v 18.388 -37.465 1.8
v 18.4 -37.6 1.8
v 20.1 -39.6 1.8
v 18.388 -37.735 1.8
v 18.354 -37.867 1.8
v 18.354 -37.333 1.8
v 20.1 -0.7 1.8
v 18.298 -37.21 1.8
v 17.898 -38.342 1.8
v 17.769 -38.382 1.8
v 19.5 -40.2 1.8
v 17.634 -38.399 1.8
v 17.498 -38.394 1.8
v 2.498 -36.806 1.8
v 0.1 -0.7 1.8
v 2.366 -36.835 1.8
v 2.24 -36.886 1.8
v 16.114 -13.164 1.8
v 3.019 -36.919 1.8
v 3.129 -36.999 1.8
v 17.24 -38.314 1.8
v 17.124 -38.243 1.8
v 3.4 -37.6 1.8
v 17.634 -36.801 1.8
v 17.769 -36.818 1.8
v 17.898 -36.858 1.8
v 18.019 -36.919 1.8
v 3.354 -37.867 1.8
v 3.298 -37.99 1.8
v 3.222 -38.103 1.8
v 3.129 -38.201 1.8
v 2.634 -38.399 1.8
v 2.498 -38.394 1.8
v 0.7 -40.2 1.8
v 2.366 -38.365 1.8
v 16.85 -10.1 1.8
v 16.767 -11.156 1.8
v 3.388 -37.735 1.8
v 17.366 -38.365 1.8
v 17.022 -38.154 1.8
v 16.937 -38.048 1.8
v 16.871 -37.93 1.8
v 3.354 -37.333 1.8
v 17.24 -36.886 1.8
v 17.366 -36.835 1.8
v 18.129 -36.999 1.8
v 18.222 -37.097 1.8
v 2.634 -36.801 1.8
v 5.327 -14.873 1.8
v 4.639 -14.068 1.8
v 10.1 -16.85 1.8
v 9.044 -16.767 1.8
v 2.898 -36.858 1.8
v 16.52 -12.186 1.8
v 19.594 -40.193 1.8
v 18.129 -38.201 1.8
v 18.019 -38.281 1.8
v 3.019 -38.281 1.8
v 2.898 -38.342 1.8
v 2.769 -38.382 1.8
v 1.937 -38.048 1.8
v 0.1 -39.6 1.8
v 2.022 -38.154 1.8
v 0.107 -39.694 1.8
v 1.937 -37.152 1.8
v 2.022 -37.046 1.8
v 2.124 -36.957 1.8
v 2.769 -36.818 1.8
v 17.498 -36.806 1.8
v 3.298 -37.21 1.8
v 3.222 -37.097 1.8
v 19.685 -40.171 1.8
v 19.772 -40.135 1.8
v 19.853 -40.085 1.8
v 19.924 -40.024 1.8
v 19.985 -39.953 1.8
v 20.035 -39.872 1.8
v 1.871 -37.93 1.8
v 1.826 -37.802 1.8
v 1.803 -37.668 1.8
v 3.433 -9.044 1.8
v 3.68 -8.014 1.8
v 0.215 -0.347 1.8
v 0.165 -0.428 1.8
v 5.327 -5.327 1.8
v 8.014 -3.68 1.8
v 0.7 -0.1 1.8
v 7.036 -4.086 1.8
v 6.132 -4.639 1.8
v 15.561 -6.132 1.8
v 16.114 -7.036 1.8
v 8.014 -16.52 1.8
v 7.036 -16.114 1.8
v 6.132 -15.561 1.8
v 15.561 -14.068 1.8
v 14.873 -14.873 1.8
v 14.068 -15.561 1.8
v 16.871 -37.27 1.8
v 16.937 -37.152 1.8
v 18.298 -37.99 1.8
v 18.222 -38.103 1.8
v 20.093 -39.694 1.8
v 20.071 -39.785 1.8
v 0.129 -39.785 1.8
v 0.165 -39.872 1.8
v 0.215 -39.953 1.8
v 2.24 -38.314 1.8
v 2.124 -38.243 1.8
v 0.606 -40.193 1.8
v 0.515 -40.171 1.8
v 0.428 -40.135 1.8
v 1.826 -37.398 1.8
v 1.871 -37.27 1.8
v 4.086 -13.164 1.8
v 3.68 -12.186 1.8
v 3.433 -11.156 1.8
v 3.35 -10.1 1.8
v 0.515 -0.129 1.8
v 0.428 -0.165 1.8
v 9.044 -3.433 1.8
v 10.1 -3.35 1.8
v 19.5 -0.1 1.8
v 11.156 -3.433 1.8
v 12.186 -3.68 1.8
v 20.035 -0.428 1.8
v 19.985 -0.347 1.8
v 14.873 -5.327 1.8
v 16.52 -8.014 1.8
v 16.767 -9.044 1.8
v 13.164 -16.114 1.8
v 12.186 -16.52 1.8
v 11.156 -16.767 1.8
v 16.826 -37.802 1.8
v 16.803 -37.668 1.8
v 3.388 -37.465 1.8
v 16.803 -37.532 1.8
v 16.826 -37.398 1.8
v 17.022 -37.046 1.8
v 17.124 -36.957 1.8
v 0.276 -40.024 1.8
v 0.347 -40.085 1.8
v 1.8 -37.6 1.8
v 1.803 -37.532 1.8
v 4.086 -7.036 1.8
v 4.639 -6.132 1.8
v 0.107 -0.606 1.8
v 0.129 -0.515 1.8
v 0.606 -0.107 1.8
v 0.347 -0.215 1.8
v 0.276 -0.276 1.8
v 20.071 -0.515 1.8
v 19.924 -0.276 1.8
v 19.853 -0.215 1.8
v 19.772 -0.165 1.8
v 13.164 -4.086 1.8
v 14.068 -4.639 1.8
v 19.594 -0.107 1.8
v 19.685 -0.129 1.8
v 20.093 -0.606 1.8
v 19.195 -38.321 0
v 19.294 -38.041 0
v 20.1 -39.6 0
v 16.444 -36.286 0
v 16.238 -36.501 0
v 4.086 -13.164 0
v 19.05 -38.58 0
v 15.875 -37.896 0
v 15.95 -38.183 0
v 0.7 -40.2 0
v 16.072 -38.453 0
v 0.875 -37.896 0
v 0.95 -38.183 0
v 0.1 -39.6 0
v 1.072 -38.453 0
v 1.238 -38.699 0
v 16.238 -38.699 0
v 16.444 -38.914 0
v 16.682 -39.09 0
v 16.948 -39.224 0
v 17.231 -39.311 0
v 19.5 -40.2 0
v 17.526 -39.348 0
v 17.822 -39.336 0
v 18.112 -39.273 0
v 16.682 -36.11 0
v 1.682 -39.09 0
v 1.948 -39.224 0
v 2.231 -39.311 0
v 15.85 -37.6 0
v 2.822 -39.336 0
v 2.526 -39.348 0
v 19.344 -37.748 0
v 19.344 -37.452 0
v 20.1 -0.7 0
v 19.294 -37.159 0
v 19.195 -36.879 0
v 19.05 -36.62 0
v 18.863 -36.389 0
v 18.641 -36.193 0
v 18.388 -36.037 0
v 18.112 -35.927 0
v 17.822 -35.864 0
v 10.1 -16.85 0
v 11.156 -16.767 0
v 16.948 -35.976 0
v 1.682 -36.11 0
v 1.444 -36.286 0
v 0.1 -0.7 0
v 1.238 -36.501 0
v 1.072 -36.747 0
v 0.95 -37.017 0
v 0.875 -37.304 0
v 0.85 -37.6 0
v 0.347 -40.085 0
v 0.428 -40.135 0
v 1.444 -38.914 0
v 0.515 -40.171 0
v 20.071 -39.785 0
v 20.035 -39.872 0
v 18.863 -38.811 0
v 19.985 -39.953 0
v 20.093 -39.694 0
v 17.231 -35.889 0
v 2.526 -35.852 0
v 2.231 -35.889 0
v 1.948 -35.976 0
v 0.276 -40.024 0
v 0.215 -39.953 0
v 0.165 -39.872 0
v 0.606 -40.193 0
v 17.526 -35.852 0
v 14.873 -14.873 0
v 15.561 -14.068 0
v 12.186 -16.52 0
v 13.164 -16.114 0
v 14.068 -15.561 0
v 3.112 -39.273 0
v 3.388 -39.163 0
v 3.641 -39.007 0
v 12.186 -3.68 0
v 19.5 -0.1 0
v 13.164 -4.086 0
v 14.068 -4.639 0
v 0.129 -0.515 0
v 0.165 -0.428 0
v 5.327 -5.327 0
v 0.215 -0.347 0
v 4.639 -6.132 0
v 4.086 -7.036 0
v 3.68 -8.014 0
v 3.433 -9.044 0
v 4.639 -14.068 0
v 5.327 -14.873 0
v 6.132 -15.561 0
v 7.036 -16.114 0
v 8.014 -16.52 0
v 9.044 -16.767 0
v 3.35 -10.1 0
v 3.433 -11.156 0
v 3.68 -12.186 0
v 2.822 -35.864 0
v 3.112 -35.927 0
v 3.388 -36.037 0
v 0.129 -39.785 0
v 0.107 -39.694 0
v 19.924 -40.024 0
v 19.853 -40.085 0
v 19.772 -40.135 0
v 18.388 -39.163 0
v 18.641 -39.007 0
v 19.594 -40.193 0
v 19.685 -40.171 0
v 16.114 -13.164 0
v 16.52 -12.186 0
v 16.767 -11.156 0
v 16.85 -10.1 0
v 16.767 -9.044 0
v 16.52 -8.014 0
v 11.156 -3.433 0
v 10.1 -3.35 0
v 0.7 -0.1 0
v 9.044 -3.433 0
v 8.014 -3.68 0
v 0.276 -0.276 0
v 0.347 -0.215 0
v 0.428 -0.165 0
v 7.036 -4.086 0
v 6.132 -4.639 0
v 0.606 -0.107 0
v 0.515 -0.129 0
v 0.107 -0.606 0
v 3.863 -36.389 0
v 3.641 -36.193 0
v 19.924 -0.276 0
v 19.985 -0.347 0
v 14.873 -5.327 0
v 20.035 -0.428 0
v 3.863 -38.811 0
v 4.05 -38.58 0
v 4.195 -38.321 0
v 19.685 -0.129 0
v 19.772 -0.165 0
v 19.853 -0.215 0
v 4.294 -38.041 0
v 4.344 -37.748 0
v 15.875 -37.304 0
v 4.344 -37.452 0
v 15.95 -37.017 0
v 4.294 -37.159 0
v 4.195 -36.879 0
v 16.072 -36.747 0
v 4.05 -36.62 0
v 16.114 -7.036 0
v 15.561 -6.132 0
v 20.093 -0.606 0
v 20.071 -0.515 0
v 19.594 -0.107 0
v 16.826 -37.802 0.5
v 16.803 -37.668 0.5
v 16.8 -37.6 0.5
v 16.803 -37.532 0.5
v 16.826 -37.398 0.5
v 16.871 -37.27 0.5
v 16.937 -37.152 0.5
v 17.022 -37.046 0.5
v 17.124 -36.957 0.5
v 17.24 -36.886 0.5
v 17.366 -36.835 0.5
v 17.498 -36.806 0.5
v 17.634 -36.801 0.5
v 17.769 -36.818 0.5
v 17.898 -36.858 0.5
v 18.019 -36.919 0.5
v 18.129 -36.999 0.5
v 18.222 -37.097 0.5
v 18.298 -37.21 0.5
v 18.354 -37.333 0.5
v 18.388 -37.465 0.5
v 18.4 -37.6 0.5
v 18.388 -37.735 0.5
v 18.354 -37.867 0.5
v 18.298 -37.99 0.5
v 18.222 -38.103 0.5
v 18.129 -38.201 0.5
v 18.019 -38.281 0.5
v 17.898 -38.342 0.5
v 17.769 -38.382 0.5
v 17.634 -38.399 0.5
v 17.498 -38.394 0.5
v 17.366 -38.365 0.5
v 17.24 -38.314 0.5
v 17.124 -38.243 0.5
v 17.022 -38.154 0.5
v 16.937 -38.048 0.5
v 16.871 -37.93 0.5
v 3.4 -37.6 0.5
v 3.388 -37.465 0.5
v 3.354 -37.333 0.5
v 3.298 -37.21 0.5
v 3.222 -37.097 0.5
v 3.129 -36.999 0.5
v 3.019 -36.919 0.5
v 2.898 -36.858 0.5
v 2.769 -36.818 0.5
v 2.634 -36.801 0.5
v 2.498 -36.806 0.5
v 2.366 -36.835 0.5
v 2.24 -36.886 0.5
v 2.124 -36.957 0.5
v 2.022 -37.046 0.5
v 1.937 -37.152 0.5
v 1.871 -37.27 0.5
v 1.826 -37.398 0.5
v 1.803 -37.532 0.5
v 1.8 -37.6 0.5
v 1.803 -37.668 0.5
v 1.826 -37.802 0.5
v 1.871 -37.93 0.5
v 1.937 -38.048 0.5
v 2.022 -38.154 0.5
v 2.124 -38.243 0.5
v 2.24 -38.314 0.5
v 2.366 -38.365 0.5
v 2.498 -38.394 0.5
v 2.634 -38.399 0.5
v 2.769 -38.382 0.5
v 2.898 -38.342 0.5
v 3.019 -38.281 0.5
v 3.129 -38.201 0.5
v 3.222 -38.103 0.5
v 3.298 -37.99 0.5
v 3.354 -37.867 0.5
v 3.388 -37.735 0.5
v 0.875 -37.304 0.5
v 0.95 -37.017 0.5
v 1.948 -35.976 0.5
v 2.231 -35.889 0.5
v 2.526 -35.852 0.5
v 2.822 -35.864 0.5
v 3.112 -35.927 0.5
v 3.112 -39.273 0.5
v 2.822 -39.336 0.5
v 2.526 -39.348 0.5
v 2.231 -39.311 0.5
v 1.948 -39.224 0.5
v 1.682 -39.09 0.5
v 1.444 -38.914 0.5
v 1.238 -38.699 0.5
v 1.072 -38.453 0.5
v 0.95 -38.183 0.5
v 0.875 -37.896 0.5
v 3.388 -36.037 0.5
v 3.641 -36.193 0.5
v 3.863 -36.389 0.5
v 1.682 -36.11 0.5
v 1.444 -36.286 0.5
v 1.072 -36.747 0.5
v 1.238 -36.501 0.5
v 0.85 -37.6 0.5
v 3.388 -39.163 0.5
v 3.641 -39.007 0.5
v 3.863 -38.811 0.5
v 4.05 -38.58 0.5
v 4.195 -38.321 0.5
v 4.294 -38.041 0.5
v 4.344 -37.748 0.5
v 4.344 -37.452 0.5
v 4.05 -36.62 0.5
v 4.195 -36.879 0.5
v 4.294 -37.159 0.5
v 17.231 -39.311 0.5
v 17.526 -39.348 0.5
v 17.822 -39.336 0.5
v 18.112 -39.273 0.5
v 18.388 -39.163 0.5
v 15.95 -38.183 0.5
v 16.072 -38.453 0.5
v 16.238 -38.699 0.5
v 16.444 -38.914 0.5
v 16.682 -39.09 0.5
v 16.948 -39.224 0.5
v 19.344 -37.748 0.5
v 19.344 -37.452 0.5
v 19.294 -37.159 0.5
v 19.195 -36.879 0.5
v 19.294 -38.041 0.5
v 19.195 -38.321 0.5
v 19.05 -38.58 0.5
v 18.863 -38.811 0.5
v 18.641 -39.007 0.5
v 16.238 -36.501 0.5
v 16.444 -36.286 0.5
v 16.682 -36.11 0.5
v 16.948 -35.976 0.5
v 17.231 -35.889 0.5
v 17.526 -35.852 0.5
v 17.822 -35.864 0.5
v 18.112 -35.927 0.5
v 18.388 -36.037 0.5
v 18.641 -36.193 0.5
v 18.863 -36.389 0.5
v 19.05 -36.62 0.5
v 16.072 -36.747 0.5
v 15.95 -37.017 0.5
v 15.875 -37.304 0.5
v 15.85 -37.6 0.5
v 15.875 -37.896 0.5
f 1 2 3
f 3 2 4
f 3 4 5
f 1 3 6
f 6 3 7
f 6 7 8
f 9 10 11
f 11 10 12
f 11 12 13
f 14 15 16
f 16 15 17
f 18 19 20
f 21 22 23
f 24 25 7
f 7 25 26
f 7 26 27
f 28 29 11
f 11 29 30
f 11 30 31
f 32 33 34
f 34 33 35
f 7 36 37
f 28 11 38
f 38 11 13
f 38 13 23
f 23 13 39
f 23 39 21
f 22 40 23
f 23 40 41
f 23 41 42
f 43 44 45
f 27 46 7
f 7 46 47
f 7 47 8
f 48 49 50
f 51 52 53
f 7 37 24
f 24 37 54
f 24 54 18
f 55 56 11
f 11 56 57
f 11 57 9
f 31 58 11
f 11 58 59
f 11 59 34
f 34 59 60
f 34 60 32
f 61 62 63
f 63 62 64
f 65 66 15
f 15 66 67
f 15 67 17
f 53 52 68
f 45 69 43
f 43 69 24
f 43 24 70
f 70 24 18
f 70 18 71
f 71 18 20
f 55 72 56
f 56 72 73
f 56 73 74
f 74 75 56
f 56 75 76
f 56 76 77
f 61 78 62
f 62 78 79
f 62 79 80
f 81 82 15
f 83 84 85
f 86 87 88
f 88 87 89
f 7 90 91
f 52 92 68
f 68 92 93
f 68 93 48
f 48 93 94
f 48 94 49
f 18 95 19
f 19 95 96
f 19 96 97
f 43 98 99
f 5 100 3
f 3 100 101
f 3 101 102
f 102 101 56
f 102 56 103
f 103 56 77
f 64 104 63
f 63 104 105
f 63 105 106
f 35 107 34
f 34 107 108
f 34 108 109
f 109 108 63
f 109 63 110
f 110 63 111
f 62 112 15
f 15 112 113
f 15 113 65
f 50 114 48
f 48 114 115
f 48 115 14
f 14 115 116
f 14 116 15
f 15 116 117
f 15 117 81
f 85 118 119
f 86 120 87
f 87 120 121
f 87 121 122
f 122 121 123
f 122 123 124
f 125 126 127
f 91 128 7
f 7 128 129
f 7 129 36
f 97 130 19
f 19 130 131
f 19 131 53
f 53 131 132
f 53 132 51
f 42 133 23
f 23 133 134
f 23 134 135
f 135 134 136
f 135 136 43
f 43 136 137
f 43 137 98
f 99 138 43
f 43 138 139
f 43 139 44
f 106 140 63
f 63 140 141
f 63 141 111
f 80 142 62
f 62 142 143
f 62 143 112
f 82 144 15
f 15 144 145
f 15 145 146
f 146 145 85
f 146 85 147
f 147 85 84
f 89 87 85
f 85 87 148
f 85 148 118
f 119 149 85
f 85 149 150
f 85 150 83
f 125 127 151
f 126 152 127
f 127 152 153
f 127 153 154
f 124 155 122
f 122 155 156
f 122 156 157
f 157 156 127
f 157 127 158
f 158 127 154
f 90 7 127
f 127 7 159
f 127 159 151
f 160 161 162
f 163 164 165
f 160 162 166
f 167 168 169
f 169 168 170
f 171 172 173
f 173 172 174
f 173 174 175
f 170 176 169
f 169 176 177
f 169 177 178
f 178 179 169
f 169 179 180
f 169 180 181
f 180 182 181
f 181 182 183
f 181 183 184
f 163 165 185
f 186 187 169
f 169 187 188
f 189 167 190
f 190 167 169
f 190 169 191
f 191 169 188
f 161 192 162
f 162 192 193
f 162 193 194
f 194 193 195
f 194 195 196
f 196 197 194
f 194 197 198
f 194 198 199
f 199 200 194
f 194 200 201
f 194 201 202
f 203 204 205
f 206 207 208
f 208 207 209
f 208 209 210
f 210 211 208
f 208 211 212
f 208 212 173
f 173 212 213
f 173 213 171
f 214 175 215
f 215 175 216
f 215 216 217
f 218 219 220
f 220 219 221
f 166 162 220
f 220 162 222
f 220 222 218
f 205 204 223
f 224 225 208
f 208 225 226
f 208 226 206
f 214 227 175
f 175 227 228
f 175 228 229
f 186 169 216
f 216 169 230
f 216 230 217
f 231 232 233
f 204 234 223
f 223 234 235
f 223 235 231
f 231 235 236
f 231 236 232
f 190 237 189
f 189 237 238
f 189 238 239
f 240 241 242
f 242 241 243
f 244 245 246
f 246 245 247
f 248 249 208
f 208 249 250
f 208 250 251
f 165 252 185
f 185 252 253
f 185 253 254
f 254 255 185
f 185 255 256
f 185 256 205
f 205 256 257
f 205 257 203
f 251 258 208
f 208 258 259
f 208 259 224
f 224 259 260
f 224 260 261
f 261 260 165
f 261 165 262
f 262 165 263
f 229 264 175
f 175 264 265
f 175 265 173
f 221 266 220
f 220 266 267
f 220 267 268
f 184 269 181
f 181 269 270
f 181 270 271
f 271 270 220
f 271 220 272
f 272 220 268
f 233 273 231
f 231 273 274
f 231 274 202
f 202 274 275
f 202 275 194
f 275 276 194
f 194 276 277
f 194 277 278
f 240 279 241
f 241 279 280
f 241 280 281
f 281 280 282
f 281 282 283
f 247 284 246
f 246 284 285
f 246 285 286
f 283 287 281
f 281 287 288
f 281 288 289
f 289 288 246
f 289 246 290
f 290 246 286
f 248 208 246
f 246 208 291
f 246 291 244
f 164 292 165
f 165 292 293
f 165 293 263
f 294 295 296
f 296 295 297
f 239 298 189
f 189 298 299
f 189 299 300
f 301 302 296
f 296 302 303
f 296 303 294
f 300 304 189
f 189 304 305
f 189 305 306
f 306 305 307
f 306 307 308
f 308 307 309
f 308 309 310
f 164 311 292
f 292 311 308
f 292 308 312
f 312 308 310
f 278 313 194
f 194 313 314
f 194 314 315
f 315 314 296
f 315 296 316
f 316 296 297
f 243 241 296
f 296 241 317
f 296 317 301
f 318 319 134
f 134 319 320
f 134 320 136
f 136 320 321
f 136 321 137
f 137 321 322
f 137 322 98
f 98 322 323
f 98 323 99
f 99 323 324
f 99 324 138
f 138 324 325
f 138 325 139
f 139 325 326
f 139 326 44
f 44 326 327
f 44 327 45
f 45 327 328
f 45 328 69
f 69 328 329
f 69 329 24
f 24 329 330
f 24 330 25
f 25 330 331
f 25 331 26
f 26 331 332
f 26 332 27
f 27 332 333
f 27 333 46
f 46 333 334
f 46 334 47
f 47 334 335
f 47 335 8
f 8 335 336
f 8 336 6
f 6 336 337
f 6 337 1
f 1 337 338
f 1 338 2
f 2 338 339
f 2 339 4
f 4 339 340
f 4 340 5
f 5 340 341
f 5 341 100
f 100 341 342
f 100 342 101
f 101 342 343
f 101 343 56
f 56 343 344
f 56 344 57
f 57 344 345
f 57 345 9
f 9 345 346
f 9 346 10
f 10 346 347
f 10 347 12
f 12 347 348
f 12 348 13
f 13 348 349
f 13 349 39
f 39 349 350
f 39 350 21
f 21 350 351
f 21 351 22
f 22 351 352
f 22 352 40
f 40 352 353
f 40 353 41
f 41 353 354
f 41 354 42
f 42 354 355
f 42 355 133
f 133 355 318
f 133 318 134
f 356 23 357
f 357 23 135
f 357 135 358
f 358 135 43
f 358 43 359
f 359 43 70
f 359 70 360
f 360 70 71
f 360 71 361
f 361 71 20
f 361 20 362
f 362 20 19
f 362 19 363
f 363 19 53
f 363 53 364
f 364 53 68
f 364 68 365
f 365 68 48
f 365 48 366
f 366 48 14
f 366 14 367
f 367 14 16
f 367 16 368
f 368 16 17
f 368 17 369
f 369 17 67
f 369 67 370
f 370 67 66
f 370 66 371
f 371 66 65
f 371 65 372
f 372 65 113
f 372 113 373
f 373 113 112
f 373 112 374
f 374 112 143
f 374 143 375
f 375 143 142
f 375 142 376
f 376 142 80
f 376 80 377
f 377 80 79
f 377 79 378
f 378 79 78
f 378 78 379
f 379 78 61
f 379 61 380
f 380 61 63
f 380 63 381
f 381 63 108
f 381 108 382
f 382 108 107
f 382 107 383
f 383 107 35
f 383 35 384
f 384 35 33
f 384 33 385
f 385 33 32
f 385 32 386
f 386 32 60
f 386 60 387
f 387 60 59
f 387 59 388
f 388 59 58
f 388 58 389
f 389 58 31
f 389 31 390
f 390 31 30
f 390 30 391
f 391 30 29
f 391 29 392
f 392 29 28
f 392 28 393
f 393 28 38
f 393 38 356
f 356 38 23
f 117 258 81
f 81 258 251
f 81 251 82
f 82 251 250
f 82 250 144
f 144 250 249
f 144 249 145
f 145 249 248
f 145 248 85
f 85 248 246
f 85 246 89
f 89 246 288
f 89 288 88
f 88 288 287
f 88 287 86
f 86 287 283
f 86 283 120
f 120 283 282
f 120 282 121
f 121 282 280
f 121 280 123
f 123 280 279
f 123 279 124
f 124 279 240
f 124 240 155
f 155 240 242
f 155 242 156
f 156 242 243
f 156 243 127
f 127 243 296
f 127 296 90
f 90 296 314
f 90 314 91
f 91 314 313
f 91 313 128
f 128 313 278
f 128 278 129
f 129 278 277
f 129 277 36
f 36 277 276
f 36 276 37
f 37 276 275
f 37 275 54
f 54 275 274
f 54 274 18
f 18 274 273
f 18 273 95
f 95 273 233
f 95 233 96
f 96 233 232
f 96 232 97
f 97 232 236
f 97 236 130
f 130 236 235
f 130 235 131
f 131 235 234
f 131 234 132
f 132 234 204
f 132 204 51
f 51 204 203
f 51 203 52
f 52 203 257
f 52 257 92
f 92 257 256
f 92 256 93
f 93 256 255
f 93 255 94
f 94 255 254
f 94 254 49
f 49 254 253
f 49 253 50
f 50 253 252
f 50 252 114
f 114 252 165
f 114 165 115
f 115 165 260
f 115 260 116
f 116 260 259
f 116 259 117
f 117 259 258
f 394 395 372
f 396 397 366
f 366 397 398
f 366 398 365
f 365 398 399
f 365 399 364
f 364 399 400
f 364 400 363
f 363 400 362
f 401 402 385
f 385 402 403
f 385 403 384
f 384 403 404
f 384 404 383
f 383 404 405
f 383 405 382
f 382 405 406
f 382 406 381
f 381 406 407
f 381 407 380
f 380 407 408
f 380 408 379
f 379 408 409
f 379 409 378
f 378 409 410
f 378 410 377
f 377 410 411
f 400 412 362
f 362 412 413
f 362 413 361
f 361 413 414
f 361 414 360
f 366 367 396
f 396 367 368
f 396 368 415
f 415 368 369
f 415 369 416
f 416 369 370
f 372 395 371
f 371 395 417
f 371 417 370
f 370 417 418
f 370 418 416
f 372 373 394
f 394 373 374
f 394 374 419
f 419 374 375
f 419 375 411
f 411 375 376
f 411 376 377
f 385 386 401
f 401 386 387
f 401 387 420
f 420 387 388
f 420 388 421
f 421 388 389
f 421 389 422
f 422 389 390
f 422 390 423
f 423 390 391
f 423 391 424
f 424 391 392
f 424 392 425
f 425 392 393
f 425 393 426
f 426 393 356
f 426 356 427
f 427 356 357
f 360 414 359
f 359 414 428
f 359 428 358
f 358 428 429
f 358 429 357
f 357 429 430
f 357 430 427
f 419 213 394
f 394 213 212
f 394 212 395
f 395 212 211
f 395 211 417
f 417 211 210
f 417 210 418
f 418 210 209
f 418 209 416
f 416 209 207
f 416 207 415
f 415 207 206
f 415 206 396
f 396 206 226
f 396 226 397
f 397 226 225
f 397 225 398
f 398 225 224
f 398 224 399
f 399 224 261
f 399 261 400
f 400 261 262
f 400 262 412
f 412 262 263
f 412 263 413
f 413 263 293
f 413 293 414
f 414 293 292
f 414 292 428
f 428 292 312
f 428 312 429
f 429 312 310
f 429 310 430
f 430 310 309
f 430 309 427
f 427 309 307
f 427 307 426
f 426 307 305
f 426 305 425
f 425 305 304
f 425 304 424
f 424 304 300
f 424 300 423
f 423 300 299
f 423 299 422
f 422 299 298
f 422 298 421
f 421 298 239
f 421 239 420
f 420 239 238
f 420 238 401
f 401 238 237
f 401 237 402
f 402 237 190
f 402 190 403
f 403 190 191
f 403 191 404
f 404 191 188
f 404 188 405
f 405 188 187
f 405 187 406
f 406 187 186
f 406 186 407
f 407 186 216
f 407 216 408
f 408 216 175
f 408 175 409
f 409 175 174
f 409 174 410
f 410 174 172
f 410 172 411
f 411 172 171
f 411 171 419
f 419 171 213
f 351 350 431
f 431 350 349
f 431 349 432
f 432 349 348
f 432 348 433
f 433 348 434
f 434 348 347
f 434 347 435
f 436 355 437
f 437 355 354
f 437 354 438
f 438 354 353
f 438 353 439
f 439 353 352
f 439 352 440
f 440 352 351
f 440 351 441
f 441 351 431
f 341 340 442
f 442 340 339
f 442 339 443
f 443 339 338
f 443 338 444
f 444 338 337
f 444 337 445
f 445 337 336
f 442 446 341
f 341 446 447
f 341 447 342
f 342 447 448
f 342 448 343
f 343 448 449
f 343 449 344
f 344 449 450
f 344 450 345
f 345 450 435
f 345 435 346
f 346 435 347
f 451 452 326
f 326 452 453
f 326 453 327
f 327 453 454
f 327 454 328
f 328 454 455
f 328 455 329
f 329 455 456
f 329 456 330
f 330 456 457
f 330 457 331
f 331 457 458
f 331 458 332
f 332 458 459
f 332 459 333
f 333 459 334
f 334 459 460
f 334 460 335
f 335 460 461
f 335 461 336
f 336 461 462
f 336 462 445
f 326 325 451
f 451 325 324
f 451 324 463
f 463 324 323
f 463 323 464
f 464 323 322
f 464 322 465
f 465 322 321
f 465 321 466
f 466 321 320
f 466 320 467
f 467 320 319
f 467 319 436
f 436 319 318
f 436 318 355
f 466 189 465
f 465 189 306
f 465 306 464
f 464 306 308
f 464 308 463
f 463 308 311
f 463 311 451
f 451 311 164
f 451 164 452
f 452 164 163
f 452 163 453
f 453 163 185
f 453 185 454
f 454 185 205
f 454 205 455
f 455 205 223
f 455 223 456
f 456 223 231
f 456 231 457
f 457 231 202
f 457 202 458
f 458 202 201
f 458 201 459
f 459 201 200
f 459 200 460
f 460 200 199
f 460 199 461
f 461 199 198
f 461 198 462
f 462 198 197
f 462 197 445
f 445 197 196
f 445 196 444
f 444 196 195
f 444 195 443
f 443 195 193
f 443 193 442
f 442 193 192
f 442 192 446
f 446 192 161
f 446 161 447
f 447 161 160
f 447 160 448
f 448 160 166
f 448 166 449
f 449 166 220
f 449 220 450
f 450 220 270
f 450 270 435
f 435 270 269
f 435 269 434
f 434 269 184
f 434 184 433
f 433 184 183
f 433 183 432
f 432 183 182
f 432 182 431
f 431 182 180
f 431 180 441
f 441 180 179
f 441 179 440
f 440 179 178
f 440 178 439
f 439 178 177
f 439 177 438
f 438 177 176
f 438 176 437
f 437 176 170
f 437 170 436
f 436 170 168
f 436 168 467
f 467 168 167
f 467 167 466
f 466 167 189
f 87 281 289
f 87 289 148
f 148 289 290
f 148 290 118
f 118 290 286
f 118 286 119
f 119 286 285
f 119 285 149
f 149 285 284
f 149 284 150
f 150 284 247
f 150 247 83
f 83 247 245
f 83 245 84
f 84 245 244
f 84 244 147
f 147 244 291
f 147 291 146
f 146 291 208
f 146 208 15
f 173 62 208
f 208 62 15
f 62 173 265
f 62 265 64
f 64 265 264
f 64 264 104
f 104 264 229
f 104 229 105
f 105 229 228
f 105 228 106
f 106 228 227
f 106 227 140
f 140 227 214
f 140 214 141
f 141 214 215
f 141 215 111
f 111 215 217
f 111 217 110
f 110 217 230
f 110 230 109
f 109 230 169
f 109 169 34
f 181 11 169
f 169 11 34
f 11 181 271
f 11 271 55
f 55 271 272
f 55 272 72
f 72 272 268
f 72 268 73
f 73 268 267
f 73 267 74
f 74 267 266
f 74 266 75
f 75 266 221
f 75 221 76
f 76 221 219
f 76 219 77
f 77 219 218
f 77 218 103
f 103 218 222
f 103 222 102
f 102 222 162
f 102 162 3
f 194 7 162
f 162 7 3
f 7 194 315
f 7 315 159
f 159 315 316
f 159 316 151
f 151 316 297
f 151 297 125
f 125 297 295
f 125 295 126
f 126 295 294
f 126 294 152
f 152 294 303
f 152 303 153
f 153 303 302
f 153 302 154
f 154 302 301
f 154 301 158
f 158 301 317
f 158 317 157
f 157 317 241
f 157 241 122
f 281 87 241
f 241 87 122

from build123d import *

# Parameters (mm, degrees)
SKETCH_1_R          = 6.75
EXTRUDE_1_DEPTH     = 1.8
SKETCH_2_R          = 0.8
CUT_EXTRUDE_1_DEPTH = 2
SKETCH_3_R          = 1.75
CUT_EXTRUDE_2_DEPTH = 0.5
CUT_EXTRUDE_4_DEPTH = 10
SKETCH_6_R          = 1.75
EXTRUDE_2_DEPTH     = 1.8


with BuildPart() as part:
    # 草图1 → 凸台-拉伸1 (new body)
    with BuildSketch(Plane.XY):
        with BuildLine():
            Line((0.7, 0), (19.5, 0))
            ThreePointArc((19.5, 0), (19.994974747, -0.205025253), (20.2, -0.7))
            Line((20.2, -0.7), (20.2, -39.6))
            ThreePointArc((20.2, -39.6), (19.994974747, -40.094974747), (19.5, -40.3))
            Line((19.5, -40.3), (0.7, -40.3))
            ThreePointArc((0.7, -40.3), (0.205025253, -40.094974747), (0, -39.6))
            Line((0, -39.6), (0, -0.7))
            ThreePointArc((0, -0.7), (0.205025253, -0.205025253), (0.7, 0))
        make_face()
        with Locations((10.1, -10.1)):
            Circle(SKETCH_1_R, mode=Mode.SUBTRACT)
    extrude(amount=EXTRUDE_1_DEPTH)

    # 草图2 → 切除-拉伸1 (cut)
    with BuildSketch(Plane.XY.offset(1.8)):
        with Locations((17.6, -2.6)):
            Circle(SKETCH_2_R)
        with Locations((17.6, -37.6)):
            Circle(SKETCH_2_R)
        with Locations((2.6, -37.6)):
            Circle(SKETCH_2_R)
        with Locations((2.6, -2.6)):
            Circle(SKETCH_2_R)
    extrude(amount=-CUT_EXTRUDE_1_DEPTH, mode=Mode.SUBTRACT)

    # 草图3 → 切除-拉伸2 (cut)
    with BuildSketch(Plane(origin=(0, 0, 0), x_dir=(-1, 0, 0), z_dir=(0, 0, -1))):
        with Locations((-17.6, -2.6)):
            Circle(SKETCH_3_R)
        with Locations((-2.6, -2.6)):
            Circle(SKETCH_3_R)
        with Locations((-17.6, -37.6)):
            Circle(SKETCH_3_R)
        with Locations((-2.6, -37.6)):
            Circle(SKETCH_3_R)
    extrude(amount=-CUT_EXTRUDE_2_DEPTH, mode=Mode.SUBTRACT)

    # 草图4 → 切除-拉伸4 (cut)
    with BuildSketch(Plane(origin=(0, 0, 0), x_dir=(-1, 0, 0), z_dir=(0, 0, -1))):
        with BuildLine():
            Line((-19.5, -40.3), (-0.7, -40.3))
            ThreePointArc((-0.7, -40.3), (-0.205025253, -40.094974747), (0, -39.6))
            Line((0, -39.6), (0, -0.7))
            ThreePointArc((0, -0.7), (-0.205025253, -0.205025253), (-0.7, 0))
            Line((-0.7, 0), (-19.5, 0))
            ThreePointArc((-19.5, 0), (-19.994974747, -0.205025253), (-20.2, -0.7))
            Line((-20.2, -0.7), (-20.2, -39.6))
            ThreePointArc((-20.2, -39.6), (-19.994974747, -40.094974747), (-19.5, -40.3))
        make_face()
        with BuildLine():
            Line((-0.7, -0.1), (-19.5, -0.1))
            ThreePointArc((-19.5, -0.1), (-19.924264069, -0.275735931), (-20.1, -0.7))
            Line((-20.1, -0.7), (-20.1, -39.6))
            ThreePointArc((-20.1, -39.6), (-19.924264069, -40.024264069), (-19.5, -40.2))
            Line((-19.5, -40.2), (-0.7, -40.2))
            ThreePointArc((-0.7, -40.2), (-0.275735931, -40.024264069), (-0.1, -39.6))
            Line((-0.1, -39.6), (-0.1, -0.7))
            ThreePointArc((-0.1, -0.7), (-0.275735931, -0.275735931), (-0.7, -0.1))
        make_face(mode=Mode.SUBTRACT)
    extrude(amount=-CUT_EXTRUDE_4_DEPTH, mode=Mode.SUBTRACT)

    # 草图6 → 凸台-拉伸2 (add)
    with BuildSketch(Plane(origin=(0, 0, 0), x_dir=(-1, 0, 0), z_dir=(0, 0, -1))):
        with Locations((-17.6, -2.6)):
            Circle(SKETCH_6_R)
        with Locations((-2.6, -2.6)):
            Circle(SKETCH_6_R)
    extrude(amount=-EXTRUDE_2_DEPTH)


solid = part.part
